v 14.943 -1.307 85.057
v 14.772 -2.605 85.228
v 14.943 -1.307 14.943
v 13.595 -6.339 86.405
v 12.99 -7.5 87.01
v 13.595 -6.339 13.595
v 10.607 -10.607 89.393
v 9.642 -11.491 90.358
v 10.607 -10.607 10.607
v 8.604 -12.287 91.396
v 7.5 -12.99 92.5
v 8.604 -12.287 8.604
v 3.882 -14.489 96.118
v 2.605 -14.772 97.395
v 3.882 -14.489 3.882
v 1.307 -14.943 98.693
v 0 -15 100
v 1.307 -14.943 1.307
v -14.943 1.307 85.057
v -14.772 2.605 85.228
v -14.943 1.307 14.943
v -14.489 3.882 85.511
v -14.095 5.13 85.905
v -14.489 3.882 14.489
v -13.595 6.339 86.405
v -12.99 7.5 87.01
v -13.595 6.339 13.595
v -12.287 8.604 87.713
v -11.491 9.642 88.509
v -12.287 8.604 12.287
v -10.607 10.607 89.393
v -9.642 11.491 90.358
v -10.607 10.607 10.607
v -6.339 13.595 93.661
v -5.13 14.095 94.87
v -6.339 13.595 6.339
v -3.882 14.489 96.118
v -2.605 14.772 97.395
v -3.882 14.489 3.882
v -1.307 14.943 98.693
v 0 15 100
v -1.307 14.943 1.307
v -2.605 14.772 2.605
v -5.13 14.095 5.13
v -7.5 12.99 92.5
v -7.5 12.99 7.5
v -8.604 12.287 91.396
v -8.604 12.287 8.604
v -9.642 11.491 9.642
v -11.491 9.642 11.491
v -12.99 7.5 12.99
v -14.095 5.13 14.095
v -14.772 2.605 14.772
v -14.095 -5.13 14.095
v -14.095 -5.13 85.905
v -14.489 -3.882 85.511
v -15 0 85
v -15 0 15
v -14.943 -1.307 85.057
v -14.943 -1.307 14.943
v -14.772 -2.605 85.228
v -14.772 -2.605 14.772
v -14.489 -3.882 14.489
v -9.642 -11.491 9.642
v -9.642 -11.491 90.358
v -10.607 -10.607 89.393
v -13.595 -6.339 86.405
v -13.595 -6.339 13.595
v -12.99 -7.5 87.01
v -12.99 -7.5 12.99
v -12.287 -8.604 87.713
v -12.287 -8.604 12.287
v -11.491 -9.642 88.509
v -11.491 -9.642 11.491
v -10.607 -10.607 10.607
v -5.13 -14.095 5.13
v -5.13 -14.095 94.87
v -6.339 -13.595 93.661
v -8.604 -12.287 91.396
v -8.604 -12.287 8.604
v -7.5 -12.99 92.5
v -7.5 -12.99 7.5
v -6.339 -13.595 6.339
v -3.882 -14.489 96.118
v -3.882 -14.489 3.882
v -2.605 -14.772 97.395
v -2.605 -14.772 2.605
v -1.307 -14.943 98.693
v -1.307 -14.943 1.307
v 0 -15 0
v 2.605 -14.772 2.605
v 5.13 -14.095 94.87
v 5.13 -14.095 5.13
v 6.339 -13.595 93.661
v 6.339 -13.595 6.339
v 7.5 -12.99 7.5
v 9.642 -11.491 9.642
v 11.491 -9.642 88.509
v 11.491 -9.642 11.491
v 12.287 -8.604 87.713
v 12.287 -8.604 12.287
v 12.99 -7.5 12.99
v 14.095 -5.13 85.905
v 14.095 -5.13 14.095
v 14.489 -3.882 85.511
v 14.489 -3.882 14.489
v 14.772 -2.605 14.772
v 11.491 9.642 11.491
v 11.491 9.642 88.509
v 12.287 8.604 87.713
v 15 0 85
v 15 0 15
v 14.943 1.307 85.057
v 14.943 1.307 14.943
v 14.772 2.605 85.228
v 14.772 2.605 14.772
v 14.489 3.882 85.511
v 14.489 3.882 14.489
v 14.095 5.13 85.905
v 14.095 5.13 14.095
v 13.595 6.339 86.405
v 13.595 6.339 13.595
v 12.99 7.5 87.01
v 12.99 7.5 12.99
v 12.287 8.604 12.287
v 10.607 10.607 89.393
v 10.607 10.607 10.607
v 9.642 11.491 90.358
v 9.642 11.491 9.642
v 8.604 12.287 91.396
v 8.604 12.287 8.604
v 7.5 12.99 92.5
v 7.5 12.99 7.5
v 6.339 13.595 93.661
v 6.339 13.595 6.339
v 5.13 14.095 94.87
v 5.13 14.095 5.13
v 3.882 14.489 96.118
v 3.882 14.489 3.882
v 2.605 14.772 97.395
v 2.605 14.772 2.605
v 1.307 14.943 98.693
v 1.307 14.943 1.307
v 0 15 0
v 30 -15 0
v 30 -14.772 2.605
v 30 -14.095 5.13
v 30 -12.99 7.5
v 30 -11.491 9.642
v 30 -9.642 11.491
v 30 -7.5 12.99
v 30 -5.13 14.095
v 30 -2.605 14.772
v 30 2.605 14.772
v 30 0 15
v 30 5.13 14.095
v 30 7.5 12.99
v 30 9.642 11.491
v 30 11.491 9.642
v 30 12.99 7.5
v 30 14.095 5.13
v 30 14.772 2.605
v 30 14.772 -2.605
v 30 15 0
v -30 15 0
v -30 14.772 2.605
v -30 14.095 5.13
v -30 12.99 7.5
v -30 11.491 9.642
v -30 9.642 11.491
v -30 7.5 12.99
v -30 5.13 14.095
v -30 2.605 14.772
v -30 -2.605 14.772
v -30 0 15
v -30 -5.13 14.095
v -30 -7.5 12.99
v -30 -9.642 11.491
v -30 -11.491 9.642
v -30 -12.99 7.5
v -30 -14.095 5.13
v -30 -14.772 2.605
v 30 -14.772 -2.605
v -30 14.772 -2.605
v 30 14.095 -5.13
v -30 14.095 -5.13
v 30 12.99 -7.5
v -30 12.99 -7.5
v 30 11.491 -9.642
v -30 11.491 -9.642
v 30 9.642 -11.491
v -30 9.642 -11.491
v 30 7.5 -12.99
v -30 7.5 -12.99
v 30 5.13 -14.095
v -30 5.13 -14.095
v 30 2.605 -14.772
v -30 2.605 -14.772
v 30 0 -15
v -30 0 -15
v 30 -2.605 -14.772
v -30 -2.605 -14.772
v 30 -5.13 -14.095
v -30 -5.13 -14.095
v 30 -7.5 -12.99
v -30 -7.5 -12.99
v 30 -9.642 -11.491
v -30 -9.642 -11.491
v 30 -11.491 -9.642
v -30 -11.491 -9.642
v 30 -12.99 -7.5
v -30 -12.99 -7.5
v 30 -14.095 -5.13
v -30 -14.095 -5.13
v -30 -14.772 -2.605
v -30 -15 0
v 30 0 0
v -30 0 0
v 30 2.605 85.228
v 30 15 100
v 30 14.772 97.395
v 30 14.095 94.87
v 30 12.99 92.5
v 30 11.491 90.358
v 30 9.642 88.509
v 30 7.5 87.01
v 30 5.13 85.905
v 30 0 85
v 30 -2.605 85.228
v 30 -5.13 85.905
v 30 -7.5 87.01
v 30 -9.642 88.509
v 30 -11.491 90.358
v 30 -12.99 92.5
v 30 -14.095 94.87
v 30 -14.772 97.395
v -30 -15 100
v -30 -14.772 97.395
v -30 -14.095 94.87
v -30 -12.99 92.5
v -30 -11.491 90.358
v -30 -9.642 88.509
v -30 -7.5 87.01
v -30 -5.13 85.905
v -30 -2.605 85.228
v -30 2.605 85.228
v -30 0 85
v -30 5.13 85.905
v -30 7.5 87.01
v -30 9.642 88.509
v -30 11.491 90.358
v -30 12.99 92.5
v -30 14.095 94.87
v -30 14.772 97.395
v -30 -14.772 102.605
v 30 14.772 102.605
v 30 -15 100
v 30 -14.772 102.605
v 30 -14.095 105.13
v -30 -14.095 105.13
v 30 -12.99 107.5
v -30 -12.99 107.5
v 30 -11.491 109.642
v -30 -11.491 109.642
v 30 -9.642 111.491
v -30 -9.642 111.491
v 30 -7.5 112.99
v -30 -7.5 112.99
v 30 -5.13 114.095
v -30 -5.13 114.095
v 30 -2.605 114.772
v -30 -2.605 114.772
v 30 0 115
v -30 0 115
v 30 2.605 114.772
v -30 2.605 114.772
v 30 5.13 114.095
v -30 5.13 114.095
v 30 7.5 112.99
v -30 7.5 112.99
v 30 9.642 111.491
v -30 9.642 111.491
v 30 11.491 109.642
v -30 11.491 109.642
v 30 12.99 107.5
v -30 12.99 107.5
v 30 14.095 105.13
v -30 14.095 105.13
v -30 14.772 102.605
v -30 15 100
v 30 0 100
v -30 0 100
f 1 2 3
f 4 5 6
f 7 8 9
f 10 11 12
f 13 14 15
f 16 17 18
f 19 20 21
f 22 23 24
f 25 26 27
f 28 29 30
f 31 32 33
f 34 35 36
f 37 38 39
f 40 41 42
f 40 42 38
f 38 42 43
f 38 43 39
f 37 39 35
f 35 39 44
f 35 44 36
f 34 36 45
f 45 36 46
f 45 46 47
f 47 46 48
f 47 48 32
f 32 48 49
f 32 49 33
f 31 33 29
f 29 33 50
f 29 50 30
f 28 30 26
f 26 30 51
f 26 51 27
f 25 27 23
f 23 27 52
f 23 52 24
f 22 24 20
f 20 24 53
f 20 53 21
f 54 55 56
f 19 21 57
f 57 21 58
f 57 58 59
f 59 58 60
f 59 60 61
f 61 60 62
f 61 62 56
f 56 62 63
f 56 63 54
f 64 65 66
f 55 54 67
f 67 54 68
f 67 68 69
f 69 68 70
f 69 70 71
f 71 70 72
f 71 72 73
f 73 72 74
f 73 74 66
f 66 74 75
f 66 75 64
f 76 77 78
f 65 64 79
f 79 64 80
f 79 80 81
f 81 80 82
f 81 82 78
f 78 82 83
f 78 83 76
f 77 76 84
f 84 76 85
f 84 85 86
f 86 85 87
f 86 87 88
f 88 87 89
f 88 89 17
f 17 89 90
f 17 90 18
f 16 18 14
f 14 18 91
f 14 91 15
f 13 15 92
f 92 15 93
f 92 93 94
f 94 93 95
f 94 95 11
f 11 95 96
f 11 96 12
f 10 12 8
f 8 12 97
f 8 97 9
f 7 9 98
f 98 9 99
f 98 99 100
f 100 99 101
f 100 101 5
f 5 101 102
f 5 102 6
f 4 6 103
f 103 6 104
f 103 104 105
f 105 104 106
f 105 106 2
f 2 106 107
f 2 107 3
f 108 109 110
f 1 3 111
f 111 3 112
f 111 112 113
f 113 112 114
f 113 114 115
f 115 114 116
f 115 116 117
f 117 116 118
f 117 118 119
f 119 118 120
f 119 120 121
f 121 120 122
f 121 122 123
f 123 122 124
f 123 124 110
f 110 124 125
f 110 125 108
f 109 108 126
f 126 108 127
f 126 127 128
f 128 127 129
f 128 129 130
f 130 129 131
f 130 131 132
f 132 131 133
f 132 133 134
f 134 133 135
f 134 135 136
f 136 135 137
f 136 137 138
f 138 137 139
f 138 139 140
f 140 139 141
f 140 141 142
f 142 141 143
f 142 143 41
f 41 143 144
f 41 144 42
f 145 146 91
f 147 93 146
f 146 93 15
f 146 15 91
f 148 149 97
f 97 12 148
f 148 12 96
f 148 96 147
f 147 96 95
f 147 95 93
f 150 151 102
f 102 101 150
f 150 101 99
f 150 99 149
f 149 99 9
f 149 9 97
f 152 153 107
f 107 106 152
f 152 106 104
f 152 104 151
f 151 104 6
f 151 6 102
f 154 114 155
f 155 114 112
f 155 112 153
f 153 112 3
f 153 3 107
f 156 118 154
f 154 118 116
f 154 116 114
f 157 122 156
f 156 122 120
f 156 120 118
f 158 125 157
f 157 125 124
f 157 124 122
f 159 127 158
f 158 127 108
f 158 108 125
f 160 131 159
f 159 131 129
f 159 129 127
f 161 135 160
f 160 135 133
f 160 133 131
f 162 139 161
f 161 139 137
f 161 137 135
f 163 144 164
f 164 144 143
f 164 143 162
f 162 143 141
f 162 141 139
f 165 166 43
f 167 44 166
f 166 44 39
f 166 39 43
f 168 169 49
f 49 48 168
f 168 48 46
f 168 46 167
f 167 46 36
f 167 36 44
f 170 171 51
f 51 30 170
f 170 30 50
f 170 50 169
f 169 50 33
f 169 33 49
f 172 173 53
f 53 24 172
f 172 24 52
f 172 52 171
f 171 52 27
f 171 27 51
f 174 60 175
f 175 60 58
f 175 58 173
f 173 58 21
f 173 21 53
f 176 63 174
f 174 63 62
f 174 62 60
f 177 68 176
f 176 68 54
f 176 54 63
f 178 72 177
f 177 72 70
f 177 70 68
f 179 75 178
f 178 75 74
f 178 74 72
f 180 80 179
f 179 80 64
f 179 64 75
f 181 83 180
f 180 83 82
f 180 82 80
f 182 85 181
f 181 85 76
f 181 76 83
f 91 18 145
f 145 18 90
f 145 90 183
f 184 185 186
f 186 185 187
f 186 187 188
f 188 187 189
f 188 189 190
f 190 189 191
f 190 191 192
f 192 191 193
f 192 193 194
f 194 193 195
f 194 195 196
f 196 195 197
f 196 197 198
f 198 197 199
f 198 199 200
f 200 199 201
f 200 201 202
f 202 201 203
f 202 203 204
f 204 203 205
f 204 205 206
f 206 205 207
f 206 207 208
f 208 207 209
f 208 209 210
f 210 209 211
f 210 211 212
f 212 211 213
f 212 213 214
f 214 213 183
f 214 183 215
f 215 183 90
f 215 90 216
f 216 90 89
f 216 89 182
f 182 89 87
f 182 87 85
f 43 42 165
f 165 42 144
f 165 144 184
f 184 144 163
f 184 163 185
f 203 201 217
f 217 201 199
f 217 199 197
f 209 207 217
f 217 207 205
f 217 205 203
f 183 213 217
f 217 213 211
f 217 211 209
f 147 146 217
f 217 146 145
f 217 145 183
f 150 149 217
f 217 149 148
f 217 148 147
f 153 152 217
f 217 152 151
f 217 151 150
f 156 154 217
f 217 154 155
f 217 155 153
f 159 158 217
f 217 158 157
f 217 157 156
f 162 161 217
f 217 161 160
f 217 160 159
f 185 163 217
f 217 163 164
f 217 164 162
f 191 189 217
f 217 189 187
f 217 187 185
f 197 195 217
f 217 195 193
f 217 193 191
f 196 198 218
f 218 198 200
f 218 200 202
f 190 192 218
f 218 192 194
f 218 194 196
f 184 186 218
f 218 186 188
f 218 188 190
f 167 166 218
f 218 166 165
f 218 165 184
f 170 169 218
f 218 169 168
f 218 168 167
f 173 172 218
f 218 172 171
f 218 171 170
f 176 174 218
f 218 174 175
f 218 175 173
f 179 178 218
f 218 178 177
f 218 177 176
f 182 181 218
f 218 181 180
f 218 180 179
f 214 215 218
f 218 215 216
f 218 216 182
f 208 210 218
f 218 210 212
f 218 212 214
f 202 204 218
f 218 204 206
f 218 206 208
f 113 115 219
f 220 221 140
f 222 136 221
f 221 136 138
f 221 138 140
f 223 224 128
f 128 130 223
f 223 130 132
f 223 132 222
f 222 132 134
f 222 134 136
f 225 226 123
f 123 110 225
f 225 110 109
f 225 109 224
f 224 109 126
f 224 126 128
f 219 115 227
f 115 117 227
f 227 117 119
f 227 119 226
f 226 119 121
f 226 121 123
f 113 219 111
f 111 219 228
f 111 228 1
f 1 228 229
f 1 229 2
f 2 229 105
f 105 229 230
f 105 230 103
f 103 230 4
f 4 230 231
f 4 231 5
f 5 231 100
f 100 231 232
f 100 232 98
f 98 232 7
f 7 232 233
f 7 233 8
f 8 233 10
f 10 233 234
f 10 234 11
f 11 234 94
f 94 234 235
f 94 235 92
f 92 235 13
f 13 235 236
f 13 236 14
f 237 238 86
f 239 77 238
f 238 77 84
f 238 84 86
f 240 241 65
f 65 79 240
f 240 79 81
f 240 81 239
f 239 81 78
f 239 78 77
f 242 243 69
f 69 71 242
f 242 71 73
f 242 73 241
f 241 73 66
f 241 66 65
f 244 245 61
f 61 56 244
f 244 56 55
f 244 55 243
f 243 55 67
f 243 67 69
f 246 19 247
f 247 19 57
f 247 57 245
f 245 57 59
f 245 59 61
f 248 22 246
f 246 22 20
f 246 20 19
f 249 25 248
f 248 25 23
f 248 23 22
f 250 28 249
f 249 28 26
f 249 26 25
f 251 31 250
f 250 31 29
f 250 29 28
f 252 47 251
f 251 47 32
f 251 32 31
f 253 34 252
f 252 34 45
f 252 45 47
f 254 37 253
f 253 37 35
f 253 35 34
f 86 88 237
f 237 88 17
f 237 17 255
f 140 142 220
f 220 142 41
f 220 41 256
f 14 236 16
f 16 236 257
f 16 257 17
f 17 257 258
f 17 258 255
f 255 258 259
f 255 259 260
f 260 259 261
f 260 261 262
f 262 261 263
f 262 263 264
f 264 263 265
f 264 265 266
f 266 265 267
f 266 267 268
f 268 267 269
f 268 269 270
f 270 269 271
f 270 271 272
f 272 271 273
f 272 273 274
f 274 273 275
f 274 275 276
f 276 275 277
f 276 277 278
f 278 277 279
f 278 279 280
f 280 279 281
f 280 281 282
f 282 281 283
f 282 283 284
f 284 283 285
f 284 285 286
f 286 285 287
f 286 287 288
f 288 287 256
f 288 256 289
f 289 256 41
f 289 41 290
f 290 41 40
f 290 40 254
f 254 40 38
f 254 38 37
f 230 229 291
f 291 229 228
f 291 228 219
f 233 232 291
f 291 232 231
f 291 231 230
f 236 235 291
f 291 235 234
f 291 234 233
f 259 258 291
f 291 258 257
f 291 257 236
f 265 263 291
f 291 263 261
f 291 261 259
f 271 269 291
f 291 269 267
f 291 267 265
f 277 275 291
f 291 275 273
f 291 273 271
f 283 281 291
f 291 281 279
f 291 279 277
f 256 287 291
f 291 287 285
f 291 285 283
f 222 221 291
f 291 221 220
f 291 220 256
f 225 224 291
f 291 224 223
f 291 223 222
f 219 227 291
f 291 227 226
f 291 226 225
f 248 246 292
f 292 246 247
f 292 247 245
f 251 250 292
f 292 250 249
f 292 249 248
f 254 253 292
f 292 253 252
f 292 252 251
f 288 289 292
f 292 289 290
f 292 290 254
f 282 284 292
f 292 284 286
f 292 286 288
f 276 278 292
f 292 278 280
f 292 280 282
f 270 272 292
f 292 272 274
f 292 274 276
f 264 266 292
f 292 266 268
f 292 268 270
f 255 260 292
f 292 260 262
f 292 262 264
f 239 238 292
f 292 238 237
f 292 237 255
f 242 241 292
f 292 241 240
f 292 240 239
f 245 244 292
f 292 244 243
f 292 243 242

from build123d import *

# Parameters (mm, degrees)
SKETCH_7_R      = 15
EXTRUDE_5_DEPTH = 30
SKETCH_8_R      = 15
EXTRUDE_6_DEPTH = 100
SKETCH_9_R      = 15
EXTRUDE_7_DEPTH = 30


with BuildPart() as part:
    # 草图7 → 凸台-拉伸5 (new, symmetric)
    with BuildSketch(Plane(origin=(0, 0, 0), x_dir=(0, 0, -1), z_dir=(1, 0, 0))):
        with Locations(Location((0, 0, 0), (0, 0, 180))):
            Circle(SKETCH_7_R)
    extrude(amount=EXTRUDE_5_DEPTH, both=True)

    # 草图8 → 凸台-拉伸6 (add)
    with BuildSketch(Plane.XY):
        with Locations(Location((0, 0, 0), (0, 0, 90))):
            Circle(SKETCH_8_R)
    extrude(amount=EXTRUDE_6_DEPTH)

    # 草图9 → 凸台-拉伸7 (add, symmetric)
    with BuildSketch(Plane(origin=(0, 0, 0), x_dir=(0, 0, -1), z_dir=(1, 0, 0))):
        with Locations((-100, 0)):
            Circle(SKETCH_9_R)
    extrude(amount=EXTRUDE_7_DEPTH, both=True)


solid = part.part
